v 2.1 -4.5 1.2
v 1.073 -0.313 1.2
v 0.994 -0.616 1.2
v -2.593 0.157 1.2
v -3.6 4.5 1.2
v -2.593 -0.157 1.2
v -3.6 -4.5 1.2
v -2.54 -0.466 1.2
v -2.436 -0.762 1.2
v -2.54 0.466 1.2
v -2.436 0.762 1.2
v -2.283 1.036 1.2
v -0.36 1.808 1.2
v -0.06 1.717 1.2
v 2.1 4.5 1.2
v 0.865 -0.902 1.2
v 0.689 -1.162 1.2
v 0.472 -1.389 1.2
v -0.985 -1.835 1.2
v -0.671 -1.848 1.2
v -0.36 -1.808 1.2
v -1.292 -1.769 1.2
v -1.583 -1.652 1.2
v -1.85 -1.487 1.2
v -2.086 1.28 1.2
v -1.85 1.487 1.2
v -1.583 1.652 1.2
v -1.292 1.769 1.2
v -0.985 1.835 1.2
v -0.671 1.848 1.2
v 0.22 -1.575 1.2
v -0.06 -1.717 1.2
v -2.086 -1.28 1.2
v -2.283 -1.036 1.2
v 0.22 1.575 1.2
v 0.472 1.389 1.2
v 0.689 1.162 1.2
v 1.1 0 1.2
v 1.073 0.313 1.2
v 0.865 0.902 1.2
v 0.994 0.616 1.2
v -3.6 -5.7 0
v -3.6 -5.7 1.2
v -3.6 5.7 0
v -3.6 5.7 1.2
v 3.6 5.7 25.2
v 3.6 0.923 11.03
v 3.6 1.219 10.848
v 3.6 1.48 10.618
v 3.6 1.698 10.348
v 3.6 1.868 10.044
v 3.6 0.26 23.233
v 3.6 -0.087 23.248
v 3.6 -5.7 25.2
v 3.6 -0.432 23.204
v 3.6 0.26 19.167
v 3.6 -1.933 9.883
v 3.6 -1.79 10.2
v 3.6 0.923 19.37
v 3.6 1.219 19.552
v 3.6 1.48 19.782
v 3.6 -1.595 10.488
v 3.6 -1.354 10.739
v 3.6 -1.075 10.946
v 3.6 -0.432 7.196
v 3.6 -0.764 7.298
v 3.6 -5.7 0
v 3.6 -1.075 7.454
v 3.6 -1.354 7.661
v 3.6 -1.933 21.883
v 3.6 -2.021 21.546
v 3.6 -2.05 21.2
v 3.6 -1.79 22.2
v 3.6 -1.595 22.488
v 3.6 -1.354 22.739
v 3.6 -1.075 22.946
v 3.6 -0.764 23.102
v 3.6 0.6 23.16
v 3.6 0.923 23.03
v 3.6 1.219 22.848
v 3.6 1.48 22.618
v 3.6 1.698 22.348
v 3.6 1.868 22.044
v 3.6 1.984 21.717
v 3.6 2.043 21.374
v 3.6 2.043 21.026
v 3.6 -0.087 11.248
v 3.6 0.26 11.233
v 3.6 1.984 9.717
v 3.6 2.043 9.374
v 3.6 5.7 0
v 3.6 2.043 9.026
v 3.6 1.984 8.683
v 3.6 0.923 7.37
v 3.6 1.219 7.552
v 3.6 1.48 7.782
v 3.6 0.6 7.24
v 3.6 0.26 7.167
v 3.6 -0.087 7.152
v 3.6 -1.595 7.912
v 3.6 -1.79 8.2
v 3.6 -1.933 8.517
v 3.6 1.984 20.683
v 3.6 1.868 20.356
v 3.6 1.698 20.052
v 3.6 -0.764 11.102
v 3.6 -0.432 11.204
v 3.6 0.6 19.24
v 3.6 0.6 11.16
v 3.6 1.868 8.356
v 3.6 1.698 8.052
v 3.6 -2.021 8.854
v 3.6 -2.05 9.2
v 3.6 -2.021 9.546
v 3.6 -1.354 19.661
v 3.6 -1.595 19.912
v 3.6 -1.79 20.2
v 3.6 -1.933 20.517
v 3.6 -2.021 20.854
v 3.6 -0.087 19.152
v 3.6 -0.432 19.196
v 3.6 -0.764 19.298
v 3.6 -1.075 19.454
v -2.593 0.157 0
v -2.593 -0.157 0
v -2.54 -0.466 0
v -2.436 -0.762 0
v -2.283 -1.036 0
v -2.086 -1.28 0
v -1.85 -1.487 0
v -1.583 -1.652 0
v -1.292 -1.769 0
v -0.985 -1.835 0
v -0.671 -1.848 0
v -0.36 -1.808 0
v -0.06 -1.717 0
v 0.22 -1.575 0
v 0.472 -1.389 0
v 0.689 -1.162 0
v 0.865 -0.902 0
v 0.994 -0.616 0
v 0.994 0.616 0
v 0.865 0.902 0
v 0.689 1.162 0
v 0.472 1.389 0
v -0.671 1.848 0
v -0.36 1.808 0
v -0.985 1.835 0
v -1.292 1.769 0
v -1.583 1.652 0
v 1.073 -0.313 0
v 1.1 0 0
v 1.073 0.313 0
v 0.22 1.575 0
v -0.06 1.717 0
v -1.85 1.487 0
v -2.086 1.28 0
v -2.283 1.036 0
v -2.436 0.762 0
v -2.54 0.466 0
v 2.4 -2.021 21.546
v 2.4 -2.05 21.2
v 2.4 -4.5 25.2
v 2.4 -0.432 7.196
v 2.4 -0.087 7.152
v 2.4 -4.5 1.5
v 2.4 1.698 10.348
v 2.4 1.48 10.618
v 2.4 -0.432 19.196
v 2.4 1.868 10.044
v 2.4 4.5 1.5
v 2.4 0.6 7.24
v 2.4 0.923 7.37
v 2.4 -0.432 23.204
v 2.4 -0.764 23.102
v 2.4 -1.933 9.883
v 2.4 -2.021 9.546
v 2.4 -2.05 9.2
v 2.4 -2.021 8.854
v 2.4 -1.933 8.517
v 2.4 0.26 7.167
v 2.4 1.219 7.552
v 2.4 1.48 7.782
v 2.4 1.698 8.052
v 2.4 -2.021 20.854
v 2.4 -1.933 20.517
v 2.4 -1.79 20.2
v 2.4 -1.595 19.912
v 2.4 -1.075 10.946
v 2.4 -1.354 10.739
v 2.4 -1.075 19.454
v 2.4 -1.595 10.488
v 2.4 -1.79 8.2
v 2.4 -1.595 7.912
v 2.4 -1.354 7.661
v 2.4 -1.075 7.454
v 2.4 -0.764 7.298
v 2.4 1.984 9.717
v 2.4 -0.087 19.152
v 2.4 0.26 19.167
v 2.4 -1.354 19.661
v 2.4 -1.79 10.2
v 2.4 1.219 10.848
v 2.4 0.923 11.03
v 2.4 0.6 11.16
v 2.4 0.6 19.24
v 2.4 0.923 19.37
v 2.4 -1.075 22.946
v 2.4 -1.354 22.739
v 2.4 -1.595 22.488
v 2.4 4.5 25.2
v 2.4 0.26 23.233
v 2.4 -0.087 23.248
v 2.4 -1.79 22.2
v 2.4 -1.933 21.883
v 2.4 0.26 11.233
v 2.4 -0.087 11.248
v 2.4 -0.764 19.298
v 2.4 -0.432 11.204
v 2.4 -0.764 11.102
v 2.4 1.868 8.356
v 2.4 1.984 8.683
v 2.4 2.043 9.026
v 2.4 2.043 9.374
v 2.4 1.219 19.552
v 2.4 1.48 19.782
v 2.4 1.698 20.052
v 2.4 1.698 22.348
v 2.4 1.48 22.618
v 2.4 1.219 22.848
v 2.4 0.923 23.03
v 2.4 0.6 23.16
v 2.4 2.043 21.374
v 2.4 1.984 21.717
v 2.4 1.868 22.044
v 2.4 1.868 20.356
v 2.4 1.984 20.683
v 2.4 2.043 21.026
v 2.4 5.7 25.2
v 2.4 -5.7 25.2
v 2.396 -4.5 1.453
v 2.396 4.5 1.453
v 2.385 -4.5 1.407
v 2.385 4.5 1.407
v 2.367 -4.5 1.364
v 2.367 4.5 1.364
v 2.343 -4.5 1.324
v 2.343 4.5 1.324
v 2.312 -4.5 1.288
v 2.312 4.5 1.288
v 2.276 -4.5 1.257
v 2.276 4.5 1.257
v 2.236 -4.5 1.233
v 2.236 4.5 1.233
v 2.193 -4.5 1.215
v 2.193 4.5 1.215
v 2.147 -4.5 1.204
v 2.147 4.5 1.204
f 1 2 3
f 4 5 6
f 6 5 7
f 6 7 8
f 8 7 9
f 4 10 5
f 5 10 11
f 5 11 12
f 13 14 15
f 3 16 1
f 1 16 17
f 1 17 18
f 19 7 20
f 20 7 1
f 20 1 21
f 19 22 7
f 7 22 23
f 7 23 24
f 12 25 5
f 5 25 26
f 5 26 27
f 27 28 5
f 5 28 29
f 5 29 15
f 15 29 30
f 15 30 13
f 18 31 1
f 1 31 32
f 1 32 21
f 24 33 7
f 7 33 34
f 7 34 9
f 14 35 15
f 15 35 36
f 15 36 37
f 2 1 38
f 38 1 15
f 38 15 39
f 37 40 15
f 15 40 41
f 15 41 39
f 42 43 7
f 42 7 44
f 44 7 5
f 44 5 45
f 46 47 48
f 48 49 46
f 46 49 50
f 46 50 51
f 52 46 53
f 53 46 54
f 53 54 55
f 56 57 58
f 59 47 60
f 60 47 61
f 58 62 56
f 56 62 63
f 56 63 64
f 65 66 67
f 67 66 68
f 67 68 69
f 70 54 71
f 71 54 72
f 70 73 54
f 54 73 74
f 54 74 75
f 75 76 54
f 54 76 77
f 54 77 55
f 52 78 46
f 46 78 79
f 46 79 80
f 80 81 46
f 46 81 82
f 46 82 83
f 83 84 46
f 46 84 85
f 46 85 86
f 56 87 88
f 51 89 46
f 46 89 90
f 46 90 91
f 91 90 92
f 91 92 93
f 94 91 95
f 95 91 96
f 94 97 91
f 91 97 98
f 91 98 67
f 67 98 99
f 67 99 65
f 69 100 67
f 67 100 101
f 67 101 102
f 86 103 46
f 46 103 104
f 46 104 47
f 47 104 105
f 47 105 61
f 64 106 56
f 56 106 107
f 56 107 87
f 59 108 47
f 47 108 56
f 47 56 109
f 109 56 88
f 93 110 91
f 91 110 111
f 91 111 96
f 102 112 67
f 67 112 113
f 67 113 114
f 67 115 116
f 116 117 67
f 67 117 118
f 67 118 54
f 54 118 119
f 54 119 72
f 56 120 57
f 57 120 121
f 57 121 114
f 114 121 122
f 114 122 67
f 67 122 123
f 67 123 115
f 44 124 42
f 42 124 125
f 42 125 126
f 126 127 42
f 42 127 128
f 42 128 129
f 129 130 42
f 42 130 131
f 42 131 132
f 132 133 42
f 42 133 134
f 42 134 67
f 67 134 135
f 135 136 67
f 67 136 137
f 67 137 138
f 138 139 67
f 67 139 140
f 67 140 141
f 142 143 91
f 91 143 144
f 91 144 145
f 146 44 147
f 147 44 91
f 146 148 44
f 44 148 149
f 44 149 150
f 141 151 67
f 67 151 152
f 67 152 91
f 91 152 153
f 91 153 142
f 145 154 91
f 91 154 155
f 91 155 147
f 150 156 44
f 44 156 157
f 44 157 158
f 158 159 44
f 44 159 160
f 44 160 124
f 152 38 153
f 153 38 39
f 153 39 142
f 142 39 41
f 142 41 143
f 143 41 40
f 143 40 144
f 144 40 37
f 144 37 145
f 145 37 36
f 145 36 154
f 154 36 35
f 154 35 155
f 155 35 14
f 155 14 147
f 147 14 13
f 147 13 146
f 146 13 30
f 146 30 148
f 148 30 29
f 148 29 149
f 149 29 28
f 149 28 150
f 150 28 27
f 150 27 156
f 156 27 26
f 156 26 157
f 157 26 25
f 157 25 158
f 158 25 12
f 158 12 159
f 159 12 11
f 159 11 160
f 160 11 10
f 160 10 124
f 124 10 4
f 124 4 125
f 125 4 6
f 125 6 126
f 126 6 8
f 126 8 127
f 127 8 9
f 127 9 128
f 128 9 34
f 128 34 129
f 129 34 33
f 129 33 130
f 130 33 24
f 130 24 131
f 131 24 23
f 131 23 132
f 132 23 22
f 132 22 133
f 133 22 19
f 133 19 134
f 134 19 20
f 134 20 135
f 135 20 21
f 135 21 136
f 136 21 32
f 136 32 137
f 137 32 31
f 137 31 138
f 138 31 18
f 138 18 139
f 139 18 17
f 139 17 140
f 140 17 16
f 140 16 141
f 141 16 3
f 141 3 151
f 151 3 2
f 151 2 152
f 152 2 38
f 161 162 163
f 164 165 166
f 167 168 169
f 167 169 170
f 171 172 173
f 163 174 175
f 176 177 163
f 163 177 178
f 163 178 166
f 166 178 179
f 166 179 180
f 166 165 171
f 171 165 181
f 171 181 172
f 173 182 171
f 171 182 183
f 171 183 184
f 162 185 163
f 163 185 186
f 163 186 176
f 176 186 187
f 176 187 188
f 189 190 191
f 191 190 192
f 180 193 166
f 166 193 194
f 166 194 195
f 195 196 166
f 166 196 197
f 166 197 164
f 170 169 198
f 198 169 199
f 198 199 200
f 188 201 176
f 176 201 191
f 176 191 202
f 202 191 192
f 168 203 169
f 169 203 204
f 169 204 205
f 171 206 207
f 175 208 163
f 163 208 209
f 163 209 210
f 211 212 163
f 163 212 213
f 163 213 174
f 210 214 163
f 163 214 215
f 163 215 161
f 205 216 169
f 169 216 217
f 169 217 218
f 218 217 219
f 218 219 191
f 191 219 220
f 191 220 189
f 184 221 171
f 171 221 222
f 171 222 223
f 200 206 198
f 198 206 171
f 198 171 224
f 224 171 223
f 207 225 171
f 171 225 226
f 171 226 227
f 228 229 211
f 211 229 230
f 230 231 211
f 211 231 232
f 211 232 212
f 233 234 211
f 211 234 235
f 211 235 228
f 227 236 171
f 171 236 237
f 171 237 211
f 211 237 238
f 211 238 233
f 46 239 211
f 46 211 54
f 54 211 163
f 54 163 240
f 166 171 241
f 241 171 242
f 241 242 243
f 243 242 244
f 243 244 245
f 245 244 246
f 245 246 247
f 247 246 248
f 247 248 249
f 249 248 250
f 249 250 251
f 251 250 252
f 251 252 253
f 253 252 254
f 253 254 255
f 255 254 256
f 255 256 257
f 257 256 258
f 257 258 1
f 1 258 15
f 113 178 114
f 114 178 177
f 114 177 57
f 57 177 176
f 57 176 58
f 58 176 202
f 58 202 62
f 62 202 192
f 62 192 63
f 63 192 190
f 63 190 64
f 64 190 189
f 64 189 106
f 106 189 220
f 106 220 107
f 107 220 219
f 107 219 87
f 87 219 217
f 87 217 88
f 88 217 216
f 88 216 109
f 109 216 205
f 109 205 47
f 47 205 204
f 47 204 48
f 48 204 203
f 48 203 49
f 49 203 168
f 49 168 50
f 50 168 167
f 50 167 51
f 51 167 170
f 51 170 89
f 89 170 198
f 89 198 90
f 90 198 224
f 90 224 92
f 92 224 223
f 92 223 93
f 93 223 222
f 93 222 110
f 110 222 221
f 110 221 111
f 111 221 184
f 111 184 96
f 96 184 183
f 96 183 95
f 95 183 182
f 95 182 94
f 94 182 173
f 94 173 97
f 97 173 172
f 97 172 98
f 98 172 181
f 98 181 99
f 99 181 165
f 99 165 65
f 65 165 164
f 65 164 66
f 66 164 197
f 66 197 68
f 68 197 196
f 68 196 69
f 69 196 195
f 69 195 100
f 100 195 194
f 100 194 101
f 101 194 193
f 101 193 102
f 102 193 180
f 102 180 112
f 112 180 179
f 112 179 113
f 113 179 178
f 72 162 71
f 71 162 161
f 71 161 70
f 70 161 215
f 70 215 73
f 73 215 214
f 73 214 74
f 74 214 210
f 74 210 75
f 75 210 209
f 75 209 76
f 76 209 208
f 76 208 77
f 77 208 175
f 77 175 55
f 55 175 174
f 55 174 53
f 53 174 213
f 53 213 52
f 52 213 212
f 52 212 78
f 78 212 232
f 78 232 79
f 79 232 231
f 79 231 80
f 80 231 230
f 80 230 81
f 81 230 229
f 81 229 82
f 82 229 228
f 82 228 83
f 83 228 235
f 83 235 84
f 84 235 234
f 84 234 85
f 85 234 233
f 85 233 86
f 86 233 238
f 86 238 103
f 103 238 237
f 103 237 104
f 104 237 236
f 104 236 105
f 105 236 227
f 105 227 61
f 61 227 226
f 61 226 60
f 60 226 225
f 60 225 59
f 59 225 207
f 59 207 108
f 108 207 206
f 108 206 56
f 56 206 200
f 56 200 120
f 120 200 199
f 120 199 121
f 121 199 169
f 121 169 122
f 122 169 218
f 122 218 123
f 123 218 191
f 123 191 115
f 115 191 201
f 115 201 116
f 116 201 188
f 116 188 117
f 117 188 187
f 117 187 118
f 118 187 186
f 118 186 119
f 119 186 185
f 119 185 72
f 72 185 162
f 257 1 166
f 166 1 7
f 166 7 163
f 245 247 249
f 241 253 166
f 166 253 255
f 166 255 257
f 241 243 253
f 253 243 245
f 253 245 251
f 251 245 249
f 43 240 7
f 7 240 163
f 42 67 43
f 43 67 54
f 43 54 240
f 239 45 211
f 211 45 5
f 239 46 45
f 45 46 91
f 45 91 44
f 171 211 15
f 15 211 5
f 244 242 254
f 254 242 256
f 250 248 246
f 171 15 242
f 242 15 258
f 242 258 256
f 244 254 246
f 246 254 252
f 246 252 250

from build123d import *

# Parameters (mm, degrees)
SKETCH_1_W          = 7.2
SKETCH_1_H          = 5
EXTRUDE_1_DEPTH     = 1.2
SKETCH_2_R          = 1.85
CUT_EXTRUDE_1_DEPTH = 5.544227107
SKETCH_3_W          = 1.2
SKETCH_3_H          = 5
EXTRUDE_2_DEPTH     = 24
FILLET_1_R          = 0.3
SKETCH_4_R          = 2.05
CUT_EXTRUDE_2_DEPTH = 27.024795869
EXTRUDE_START       = 2
EXTRUDE_4_DEPTH     = 2
EXTRUDE_5_DEPTH     = 1.2


with BuildPart() as part:
    # 스케치1 → 보스-돌출1 (new body)
    with BuildSketch(Plane.XY):
        Rectangle(SKETCH_1_W, SKETCH_1_H)
    extrude(amount=EXTRUDE_1_DEPTH)

    # 스케치2 → 컷-돌출1 (cut, through all)
    with BuildSketch(Plane.XY.offset(1.2)):
        with Locations((-0.75, 0)):
            Circle(SKETCH_2_R)
    extrude(amount=-CUT_EXTRUDE_1_DEPTH, mode=Mode.SUBTRACT)

    # 스케치3 → 보스-돌출2 (add)
    with BuildSketch(Plane.XY.offset(1.2)):
        with Locations((3, 0)):
            Rectangle(SKETCH_3_W, SKETCH_3_H)
    extrude(amount=EXTRUDE_2_DEPTH)

    # 필렛1
    fillet_1_edges = [part.edges().sort_by_distance(p)[0] for p in [
        (2.4, 0, 1.2),
    ]]
    fillet(fillet_1_edges, radius=FILLET_1_R)

    # 스케치4 → 컷-돌출2 (cut, through all)
    with BuildSketch(Plane.ZY.offset(-2.4)):
        with Locations(Location((21.2, 0, 0), (0, 0, 270))):
            Circle(SKETCH_4_R)
        with Locations(Location((9.2, 0, 0), (0, 0, 270))):
            Circle(SKETCH_4_R)
    extrude(amount=-CUT_EXTRUDE_2_DEPTH, mode=Mode.SUBTRACT)

    # 스케치6 → 보스-돌출4 (add)
    with BuildSketch(Plane.XZ.offset(2.5).offset(EXTRUDE_START)):
        with BuildLine():
            Line((-3.6, 1.2), (-3.6, 0))
            Line((-3.6, 0), (3.6, 0))
            Line((3.6, 0), (3.6, 25.2))
            Line((3.6, 25.2), (2.4, 25.2))
            Line((2.4, 25.2), (2.4, 1.5))
            ThreePointArc((2.4, 1.5), (2.312132034, 1.287867966), (2.1, 1.2))
            Line((2.1, 1.2), (-3.6, 1.2))
        make_face()
    extrude_4 = extrude(amount=-EXTRUDE_4_DEPTH)

    # 대칭 복사1: 보스-돌출4 across plane
    add(extrude_4.mirror(Plane.ZX))

    # 스케치7 → 보스-돌출5 (add)
    with BuildSketch(Plane(origin=(0, -4.5, 0), x_dir=(-1, 0, 0), z_dir=(0, -1, 0))):
        Polygon((3.6, 0), (-3.6, 0), (-3.6, -25.2), (-2.4, -25.2), (3.6, -1.2), align=None)
    extrude_5 = extrude(amount=EXTRUDE_5_DEPTH)

    # 대칭 복사2: 보스-돌출5 across plane
    add(extrude_5.mirror(Plane.ZX))


solid = part.part
